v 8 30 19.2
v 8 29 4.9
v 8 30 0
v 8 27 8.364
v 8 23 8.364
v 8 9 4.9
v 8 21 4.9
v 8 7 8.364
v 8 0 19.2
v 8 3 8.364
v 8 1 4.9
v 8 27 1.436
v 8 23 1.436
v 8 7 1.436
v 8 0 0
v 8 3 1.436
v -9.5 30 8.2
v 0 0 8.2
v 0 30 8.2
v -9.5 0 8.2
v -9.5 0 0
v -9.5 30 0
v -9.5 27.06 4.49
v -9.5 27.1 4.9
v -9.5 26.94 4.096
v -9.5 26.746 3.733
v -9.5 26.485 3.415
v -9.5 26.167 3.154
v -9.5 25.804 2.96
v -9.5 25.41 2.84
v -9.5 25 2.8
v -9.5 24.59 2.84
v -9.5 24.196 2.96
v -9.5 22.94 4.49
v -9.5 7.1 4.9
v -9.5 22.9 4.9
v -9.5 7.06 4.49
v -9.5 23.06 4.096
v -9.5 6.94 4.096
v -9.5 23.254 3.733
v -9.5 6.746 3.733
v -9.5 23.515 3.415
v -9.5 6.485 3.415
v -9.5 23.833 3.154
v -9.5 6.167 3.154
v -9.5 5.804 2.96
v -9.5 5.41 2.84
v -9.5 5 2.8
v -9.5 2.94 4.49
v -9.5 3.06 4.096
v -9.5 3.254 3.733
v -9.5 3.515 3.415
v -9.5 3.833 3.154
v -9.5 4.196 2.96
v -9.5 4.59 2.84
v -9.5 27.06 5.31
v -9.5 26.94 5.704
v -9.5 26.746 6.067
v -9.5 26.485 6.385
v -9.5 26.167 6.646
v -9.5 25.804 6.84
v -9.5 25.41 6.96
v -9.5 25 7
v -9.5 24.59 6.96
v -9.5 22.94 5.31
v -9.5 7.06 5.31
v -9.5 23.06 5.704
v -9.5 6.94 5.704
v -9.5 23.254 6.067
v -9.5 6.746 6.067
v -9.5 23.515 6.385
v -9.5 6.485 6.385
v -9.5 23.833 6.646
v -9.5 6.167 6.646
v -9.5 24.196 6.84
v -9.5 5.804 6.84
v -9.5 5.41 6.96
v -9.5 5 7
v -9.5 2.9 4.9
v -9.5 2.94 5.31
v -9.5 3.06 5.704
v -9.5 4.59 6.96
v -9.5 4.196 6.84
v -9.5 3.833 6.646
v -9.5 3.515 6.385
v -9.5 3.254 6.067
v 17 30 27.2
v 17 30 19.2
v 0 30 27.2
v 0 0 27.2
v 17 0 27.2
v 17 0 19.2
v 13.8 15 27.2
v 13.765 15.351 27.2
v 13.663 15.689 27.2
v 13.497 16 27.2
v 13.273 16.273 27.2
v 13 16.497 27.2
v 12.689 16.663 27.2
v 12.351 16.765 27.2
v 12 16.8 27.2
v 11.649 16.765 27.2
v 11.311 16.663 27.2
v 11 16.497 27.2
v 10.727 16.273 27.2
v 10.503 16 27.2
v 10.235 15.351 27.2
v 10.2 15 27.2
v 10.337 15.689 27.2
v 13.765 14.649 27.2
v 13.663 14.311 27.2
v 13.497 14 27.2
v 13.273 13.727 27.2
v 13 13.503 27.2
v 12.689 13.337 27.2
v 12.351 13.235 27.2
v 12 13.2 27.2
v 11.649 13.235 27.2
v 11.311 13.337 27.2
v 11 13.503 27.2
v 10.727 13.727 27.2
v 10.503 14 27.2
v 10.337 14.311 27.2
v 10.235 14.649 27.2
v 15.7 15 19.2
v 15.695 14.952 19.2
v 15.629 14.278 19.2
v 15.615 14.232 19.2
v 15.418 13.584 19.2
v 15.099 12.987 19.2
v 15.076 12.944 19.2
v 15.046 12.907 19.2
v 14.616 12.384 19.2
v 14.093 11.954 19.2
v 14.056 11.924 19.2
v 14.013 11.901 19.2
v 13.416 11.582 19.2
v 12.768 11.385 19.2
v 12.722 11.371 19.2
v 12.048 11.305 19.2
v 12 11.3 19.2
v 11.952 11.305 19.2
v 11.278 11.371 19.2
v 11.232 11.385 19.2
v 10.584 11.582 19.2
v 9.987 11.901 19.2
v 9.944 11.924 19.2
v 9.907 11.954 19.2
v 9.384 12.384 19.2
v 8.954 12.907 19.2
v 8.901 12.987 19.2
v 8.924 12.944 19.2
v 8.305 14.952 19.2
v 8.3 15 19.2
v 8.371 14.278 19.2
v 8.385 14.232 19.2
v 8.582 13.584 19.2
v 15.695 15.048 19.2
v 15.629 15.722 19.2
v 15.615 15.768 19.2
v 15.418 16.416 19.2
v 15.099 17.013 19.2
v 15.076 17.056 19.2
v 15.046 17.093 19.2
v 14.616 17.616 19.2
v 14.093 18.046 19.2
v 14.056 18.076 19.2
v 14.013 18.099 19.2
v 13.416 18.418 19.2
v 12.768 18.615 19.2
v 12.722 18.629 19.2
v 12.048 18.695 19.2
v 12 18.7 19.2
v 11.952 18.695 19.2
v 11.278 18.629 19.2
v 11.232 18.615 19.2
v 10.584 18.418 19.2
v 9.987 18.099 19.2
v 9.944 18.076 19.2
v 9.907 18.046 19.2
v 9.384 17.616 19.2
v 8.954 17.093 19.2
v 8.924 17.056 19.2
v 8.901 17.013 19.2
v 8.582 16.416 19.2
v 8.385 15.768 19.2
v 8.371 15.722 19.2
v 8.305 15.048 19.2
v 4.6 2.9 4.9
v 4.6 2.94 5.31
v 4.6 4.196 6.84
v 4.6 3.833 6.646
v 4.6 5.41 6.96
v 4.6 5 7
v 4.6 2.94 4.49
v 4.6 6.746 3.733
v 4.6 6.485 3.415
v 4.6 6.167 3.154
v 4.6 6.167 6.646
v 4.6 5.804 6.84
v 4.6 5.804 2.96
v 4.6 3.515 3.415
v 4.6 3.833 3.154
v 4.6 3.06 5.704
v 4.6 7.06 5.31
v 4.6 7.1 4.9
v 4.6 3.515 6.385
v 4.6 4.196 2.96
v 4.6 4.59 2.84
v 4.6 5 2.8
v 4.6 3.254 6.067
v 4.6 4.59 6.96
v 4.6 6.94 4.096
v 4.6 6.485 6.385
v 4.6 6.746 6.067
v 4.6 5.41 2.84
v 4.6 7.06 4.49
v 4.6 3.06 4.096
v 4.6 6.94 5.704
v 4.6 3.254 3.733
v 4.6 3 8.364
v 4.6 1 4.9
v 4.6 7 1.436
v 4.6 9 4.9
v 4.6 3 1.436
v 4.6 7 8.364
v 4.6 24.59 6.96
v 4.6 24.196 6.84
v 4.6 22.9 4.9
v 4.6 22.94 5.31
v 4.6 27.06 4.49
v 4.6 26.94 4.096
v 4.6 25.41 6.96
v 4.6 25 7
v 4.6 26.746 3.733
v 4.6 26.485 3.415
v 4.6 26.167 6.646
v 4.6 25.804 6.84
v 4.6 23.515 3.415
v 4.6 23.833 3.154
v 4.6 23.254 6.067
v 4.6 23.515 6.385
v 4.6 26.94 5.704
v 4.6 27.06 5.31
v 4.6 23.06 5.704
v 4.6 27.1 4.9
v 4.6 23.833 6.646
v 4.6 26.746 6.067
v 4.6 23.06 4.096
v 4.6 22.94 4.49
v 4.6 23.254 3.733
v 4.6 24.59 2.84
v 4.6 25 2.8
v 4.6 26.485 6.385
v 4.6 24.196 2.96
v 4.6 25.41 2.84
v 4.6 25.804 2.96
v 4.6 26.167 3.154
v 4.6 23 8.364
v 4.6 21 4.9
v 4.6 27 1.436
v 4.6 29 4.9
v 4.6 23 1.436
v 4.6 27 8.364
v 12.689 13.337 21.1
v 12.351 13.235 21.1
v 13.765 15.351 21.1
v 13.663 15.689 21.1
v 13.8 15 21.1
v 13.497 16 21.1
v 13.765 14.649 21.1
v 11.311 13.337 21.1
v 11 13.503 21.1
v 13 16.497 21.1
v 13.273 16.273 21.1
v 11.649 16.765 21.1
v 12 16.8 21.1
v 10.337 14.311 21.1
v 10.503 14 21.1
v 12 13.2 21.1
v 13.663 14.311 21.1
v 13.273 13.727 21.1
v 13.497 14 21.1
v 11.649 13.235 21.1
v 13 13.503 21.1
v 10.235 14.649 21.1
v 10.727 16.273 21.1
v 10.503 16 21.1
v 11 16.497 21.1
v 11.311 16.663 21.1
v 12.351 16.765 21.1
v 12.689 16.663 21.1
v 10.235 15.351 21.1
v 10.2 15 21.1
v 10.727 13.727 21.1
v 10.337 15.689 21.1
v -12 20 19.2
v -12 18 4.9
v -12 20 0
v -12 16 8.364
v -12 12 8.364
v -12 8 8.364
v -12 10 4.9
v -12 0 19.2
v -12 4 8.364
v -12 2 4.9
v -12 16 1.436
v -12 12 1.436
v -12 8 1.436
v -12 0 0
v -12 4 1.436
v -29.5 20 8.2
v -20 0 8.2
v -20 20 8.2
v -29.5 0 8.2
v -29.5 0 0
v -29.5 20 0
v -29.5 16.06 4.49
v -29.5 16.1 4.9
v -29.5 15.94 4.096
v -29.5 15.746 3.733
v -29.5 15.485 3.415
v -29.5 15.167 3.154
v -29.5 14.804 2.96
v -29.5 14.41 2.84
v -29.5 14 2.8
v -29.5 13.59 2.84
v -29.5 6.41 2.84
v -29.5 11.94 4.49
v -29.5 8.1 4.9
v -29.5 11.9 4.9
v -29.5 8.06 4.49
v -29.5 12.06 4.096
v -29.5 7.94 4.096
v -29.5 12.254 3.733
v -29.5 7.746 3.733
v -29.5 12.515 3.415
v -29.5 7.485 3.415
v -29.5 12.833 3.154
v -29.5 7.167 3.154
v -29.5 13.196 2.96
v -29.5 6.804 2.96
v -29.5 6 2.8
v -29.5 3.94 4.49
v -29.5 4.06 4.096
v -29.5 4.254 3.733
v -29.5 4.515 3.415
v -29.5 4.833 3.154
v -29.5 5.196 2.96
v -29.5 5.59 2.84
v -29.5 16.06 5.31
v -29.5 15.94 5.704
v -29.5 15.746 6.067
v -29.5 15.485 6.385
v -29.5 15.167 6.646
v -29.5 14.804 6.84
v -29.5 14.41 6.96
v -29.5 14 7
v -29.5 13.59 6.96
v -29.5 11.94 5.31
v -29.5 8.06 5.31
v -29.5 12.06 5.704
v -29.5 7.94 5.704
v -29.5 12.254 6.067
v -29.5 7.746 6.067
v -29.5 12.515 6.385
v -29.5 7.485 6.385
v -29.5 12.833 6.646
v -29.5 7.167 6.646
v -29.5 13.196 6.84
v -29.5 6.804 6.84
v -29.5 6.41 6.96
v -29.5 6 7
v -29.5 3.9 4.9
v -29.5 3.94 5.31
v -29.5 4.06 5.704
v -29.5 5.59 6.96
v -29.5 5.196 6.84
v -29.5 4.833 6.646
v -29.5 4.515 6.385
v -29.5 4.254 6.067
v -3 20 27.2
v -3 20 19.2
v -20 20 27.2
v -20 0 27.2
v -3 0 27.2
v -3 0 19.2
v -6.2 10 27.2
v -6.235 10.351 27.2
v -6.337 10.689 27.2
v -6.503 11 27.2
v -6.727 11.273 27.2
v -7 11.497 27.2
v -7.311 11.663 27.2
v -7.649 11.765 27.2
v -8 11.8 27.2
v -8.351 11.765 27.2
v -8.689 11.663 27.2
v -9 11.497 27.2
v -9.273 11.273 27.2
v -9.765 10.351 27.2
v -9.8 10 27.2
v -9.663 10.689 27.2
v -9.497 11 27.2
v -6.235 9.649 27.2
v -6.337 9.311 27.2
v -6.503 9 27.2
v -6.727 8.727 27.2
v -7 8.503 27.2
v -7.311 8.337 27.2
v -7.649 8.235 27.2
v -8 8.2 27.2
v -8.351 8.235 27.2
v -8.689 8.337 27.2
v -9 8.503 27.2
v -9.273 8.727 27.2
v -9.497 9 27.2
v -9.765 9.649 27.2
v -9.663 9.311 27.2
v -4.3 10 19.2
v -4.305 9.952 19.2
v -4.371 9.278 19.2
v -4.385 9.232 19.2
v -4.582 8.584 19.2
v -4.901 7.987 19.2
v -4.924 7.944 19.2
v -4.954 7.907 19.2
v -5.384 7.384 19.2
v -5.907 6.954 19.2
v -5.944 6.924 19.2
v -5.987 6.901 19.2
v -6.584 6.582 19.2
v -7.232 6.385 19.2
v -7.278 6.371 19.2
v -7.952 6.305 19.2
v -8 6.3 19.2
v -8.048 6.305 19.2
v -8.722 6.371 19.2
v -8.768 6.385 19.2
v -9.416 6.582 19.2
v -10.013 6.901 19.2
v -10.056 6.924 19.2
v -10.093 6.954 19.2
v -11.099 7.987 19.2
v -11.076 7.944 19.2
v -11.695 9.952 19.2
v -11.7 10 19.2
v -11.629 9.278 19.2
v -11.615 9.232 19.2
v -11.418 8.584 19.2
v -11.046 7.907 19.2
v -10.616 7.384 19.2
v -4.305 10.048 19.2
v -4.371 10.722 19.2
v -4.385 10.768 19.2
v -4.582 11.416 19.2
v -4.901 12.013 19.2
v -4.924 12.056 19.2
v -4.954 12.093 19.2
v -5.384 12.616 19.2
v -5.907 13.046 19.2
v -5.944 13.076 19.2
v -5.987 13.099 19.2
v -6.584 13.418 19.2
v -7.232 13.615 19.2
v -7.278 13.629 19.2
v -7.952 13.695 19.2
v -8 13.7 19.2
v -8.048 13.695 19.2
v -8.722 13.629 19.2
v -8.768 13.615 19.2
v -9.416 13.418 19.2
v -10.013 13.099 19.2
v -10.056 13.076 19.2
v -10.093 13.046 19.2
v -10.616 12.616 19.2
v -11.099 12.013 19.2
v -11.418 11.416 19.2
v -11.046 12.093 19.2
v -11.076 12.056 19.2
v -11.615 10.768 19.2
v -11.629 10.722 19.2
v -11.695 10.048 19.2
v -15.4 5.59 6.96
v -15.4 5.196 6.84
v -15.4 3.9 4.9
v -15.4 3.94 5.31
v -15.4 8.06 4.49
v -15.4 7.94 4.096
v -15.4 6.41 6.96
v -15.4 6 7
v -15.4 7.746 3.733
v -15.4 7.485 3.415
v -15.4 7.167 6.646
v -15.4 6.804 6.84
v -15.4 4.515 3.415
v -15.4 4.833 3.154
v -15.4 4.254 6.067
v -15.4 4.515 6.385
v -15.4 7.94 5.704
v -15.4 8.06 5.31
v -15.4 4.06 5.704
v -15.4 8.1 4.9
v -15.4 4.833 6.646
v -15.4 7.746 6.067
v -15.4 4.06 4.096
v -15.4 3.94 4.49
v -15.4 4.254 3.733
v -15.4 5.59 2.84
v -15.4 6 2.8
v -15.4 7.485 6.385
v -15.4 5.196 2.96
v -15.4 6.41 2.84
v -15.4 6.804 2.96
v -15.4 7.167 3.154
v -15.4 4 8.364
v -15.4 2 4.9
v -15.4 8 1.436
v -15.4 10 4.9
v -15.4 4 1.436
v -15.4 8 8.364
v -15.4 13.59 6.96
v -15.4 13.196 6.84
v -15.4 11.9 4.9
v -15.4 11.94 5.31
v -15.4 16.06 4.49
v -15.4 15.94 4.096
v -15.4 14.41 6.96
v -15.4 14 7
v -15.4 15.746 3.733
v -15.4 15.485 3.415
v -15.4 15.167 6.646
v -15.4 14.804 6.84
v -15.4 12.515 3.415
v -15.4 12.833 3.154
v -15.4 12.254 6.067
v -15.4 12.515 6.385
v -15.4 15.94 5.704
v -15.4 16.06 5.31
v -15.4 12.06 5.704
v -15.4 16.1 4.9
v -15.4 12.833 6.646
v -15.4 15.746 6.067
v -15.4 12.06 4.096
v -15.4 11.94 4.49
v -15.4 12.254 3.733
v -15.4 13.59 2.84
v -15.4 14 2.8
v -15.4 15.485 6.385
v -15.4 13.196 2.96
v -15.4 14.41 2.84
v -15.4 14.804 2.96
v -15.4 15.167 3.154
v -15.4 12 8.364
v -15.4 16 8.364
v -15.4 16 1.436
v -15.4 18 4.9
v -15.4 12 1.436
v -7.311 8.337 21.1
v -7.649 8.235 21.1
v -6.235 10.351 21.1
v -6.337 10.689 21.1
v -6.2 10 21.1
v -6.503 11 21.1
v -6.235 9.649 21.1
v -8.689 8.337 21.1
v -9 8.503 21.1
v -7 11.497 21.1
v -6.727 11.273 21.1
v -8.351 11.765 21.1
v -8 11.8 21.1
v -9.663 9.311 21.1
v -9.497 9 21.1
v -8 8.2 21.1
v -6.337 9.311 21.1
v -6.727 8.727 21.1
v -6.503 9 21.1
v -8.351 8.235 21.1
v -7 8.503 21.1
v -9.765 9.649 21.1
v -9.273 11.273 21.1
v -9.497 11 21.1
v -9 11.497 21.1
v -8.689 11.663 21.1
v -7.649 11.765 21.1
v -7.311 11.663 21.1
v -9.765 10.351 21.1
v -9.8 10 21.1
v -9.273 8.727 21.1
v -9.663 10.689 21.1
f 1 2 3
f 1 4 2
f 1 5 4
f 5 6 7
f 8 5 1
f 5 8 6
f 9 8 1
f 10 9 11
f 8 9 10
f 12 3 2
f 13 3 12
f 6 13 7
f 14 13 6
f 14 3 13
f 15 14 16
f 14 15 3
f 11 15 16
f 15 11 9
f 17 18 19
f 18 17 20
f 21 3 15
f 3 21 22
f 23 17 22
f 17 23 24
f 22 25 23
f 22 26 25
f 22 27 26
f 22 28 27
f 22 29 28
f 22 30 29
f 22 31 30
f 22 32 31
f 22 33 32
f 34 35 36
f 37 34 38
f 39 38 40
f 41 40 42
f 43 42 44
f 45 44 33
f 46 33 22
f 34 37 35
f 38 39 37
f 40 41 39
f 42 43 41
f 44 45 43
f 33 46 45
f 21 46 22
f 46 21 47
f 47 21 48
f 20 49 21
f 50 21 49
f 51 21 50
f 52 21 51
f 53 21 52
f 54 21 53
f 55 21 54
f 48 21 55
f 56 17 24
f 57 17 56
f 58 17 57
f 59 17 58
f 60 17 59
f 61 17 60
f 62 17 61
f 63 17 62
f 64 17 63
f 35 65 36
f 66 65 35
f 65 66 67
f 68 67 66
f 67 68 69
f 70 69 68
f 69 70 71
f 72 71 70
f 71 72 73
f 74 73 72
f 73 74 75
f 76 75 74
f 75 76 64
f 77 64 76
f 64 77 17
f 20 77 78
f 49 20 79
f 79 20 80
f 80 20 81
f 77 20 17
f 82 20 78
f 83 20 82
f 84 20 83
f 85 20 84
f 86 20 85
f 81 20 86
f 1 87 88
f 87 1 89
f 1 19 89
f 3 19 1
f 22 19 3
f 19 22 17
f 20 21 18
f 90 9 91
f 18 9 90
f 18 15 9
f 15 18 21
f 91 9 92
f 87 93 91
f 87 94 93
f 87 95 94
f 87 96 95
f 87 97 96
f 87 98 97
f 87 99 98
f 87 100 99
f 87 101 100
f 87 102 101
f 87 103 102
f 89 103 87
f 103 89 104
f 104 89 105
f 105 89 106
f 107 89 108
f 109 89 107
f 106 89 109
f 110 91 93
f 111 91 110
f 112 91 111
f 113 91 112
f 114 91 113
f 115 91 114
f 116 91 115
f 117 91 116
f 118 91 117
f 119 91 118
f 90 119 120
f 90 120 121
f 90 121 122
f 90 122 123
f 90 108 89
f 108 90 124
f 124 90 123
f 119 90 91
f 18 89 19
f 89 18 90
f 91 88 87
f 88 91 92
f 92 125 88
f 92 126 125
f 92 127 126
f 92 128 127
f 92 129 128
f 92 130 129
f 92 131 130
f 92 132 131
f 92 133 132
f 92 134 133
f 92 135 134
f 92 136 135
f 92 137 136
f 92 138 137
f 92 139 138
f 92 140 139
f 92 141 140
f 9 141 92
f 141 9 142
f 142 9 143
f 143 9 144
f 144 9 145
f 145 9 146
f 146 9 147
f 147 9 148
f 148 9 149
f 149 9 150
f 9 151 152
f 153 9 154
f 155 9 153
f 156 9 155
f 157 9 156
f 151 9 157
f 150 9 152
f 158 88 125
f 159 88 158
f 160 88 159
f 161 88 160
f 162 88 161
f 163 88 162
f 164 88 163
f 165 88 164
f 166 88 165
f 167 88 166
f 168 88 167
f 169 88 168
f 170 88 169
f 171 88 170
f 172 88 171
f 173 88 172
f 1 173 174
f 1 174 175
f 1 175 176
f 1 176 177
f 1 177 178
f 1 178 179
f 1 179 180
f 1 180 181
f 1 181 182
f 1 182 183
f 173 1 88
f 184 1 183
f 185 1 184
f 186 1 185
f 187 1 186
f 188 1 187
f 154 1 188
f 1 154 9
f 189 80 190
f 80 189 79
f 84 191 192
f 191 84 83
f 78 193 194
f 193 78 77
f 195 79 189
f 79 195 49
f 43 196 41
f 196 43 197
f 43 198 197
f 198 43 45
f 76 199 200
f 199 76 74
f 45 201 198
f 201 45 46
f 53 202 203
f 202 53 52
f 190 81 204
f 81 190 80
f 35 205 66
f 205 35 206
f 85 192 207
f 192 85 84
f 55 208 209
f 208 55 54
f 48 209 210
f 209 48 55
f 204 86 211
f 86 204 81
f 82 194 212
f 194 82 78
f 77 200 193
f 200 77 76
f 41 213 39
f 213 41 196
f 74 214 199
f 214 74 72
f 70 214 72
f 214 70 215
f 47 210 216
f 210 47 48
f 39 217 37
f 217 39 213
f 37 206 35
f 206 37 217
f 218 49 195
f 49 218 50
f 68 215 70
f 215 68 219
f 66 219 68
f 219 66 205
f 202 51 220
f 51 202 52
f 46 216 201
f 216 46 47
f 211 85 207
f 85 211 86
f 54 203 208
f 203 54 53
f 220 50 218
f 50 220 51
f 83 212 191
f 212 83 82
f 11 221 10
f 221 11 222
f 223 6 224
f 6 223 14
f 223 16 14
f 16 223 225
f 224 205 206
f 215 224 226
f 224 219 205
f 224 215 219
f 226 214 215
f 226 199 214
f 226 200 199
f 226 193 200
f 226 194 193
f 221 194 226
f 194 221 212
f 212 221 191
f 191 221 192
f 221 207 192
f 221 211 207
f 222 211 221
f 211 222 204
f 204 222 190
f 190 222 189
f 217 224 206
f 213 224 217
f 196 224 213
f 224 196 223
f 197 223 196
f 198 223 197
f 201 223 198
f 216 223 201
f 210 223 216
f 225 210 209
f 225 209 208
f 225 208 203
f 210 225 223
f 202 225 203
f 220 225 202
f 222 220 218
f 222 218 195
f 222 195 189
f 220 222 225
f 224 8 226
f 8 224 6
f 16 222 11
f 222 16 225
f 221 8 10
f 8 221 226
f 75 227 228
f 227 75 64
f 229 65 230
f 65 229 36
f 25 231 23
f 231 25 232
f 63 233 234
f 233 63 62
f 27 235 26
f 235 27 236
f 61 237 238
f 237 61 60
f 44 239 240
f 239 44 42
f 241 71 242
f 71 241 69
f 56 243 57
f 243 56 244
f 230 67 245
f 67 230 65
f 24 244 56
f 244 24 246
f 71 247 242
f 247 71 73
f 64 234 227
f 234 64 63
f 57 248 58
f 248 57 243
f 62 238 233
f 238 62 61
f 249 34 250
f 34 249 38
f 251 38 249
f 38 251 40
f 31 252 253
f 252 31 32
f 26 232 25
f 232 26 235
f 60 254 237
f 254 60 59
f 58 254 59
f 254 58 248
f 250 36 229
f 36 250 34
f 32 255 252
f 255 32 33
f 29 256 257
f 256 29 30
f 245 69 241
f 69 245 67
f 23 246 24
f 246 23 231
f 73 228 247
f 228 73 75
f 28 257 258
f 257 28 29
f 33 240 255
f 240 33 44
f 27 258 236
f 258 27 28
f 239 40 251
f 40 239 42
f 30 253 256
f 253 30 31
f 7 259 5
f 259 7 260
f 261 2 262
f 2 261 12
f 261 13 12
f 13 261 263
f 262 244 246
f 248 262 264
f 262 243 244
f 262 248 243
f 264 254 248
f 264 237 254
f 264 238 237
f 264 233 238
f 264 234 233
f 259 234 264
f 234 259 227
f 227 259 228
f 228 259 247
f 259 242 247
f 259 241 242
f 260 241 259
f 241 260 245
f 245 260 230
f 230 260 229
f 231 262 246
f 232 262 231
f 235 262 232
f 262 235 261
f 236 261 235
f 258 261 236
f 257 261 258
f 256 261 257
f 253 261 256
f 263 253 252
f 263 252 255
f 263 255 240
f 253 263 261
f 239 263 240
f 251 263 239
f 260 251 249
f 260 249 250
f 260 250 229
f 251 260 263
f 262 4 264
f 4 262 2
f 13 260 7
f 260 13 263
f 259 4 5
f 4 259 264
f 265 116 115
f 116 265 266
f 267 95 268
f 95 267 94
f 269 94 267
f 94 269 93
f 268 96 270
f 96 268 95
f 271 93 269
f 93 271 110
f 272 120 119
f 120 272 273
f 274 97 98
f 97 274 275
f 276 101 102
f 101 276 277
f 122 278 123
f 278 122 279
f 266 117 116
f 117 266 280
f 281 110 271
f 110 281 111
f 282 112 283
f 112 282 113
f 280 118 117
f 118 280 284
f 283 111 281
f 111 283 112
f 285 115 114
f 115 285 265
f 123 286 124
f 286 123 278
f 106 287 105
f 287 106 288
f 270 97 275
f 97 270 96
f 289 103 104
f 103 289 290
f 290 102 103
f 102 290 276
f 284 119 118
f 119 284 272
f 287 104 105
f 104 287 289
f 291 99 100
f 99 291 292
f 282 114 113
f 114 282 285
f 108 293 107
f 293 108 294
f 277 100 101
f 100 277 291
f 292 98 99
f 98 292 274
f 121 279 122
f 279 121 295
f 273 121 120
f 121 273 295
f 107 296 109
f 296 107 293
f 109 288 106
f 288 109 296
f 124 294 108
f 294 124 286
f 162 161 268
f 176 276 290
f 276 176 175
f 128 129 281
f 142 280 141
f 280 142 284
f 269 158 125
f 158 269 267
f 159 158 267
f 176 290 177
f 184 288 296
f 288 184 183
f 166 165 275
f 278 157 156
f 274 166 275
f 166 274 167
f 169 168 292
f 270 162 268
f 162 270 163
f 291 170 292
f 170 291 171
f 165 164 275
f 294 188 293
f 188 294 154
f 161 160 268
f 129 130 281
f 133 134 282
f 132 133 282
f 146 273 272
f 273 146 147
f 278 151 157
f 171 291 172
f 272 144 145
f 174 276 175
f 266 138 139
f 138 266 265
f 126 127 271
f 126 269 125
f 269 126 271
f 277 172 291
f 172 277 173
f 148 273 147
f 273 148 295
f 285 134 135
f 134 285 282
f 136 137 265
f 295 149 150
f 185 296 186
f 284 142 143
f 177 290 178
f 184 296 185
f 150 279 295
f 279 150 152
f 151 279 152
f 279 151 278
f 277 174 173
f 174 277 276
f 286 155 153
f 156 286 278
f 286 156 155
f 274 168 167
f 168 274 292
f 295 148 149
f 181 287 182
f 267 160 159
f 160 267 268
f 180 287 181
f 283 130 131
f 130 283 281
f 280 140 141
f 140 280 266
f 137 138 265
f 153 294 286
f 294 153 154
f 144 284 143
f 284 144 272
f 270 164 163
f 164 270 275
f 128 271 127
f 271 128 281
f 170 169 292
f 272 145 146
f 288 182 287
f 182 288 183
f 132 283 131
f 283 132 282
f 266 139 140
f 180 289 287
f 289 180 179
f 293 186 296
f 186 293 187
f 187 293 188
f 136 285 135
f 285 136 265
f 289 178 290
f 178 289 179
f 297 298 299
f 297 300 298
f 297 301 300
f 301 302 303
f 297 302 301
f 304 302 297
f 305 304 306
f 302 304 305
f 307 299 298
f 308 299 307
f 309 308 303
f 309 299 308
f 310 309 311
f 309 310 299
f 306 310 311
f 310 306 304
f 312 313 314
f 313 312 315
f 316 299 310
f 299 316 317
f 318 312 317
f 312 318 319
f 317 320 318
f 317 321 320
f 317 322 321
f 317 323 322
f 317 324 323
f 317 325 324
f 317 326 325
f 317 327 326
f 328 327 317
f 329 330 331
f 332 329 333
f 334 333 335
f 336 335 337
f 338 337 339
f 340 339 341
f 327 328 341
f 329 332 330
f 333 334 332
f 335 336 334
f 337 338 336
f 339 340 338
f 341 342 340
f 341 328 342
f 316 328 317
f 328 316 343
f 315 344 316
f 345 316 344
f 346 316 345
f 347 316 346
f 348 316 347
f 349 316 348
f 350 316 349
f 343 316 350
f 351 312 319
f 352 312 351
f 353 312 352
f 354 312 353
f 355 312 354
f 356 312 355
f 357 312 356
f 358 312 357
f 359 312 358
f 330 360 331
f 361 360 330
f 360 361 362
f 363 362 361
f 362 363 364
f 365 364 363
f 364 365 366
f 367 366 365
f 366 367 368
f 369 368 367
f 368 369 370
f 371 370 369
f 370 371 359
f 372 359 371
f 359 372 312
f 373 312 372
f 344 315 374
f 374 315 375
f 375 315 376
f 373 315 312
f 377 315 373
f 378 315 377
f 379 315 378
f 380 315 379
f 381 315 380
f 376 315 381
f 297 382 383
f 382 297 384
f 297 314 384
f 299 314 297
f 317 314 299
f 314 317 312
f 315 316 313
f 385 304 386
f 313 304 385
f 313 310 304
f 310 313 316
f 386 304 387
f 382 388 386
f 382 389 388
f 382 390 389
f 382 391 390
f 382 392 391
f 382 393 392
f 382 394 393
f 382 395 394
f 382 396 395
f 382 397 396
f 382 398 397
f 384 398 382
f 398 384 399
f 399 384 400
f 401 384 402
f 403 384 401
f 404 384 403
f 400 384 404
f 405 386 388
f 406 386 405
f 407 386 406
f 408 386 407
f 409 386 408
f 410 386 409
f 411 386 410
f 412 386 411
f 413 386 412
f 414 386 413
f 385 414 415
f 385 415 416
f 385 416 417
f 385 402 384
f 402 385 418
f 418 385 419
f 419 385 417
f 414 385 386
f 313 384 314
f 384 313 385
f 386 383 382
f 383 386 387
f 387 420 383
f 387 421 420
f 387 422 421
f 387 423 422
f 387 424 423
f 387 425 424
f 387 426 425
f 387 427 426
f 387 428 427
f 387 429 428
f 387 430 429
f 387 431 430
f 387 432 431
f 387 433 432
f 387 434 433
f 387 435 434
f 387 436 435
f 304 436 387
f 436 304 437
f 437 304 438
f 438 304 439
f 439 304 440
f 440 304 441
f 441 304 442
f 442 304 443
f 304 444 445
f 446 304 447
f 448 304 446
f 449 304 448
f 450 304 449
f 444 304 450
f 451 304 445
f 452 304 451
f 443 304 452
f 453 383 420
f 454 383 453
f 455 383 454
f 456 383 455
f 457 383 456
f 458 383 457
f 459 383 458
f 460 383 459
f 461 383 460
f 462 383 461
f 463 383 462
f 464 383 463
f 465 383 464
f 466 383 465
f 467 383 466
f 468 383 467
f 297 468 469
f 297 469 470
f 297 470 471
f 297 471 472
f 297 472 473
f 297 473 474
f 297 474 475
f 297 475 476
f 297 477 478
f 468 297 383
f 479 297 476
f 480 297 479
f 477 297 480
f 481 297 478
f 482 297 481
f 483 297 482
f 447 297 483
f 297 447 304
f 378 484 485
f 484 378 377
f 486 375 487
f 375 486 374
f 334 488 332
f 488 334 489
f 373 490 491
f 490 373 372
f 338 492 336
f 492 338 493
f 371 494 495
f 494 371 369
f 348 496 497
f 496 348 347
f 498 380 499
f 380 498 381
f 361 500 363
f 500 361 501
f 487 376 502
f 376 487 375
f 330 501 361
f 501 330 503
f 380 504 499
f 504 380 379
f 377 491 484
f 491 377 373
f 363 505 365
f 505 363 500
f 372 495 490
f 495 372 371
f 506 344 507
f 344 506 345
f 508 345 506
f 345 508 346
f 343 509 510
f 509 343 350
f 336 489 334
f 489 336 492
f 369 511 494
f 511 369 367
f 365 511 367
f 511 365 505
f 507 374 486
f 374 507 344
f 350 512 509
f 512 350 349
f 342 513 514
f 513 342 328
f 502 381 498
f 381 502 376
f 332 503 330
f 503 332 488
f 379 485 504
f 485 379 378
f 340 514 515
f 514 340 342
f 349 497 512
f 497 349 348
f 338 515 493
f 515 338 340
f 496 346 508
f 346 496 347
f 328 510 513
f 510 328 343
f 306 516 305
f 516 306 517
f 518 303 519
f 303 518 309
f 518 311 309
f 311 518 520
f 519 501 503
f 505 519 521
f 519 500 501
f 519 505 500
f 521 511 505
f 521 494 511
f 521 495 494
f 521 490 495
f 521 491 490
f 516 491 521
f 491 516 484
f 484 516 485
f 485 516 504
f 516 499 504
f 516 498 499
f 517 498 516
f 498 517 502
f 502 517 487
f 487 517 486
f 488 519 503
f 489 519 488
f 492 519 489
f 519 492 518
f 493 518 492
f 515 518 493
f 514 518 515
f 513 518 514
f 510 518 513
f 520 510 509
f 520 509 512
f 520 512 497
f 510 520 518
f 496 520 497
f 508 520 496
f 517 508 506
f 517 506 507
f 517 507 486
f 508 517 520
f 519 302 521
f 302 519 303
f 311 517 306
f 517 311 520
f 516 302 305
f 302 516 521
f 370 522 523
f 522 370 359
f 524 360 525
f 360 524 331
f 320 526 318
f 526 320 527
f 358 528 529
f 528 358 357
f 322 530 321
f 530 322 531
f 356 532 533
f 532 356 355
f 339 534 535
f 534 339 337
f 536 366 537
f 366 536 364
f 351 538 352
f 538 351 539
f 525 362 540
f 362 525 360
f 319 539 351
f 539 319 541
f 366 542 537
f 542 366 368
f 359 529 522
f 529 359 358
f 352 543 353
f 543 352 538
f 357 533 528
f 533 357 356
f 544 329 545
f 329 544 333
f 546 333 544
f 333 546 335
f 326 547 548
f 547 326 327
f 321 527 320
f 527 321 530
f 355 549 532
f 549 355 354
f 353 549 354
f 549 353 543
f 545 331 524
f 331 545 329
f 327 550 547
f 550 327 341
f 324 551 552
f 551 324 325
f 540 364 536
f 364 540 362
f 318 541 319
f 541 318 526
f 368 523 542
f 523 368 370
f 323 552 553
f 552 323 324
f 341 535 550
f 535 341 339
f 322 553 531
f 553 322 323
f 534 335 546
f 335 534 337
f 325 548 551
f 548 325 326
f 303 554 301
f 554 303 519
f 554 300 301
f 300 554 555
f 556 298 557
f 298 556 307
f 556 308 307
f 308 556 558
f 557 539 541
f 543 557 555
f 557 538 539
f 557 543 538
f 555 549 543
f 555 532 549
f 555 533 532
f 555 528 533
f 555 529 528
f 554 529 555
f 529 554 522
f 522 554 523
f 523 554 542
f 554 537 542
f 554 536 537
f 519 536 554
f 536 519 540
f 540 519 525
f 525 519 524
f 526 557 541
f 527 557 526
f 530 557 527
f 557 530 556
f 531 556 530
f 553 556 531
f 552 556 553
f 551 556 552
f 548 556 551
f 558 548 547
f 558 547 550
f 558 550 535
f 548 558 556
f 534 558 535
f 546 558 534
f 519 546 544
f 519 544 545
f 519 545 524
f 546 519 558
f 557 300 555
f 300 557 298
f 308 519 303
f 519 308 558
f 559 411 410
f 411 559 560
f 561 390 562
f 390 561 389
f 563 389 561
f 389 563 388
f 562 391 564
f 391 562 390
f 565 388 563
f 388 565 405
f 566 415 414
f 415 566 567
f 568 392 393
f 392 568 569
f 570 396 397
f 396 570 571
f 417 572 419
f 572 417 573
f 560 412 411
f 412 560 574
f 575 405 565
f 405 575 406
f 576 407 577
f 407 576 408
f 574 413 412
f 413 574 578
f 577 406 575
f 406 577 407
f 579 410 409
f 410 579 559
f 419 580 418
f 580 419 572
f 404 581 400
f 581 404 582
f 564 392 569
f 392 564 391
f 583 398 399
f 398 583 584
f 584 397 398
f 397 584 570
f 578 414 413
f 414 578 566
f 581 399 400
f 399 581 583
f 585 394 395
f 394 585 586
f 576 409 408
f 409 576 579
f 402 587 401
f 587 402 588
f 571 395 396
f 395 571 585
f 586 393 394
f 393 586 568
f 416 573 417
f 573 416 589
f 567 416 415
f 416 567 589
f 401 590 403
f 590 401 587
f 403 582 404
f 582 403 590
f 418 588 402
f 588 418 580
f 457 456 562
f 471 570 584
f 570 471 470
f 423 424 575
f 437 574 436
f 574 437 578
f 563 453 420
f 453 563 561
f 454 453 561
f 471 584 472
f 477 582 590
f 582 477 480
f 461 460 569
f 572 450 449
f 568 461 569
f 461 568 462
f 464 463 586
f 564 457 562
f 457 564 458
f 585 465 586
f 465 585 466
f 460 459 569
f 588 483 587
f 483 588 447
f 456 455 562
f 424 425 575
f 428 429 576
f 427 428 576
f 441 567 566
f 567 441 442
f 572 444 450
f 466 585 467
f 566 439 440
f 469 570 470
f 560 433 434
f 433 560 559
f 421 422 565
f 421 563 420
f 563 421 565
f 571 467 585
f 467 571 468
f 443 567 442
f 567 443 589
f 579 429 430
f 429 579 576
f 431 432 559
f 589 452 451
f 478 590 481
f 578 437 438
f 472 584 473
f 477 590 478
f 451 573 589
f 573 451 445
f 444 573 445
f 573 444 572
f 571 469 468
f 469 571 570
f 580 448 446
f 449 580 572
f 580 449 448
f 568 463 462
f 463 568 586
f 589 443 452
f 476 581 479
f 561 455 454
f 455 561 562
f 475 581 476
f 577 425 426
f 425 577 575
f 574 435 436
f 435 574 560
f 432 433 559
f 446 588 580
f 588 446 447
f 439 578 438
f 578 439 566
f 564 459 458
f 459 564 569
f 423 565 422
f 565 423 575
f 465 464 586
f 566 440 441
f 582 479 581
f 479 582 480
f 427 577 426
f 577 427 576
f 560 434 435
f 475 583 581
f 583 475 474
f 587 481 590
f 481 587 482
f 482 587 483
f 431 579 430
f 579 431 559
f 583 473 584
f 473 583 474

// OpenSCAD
difference() {
    union() {
        translate([-9.5, 0, 0]) cube([9.5+8, 30, 8.2]);
        cube([8, 30, 27.2]);
        translate([0, 0, 27.2-8]) cube([17, 30, 8]);
    }
    for(i=[-1, 1]) {
        translate([9, 15+i*10, 27.2-22.3]) rotate([0, -90, 0]) cylinder(d=4.2, h=30, $fn=32);
        translate([9, 15+i*10, 27.2-22.3]) rotate([0, -90, 0]) rotate([0, 0, 30]) cylinder(d=8, h=4.4, $fn=6);
    }
    translate([8+4, 15, 18.9]) cylinder(d=3.6, h=20, $fn=32);
    translate([8+4, 15, 18.9]) cylinder(d1=8, d2=3.6, h=2.2, $fn=32);
}

translate([-20, 0, 0]) difference() {
    union() {
        translate([-9.5, 0, 0]) cube([9.5+8, 20, 8.2]);
        cube([8, 20, 27.2]);
        translate([0, 0, 27.2-8]) cube([17, 20, 8]);
    }
    for(i=[-1, 1]) {
        translate([9, 10+i*4, 27.2-22.3]) rotate([0, -90, 0]) cylinder(d=4.2, h=30, $fn=32);
        translate([9, 10+i*4, 27.2-22.3]) rotate([0, -90, 0]) rotate([0, 0, 30]) cylinder(d=8, h=4.4, $fn=6);
    }
    translate([8+4, 10, 18.9]) cylinder(d=3.6, h=20, $fn=32);
    translate([8+4, 10, 18.9]) cylinder(d1=8, d2=3.6, h=2.2, $fn=32);
}
